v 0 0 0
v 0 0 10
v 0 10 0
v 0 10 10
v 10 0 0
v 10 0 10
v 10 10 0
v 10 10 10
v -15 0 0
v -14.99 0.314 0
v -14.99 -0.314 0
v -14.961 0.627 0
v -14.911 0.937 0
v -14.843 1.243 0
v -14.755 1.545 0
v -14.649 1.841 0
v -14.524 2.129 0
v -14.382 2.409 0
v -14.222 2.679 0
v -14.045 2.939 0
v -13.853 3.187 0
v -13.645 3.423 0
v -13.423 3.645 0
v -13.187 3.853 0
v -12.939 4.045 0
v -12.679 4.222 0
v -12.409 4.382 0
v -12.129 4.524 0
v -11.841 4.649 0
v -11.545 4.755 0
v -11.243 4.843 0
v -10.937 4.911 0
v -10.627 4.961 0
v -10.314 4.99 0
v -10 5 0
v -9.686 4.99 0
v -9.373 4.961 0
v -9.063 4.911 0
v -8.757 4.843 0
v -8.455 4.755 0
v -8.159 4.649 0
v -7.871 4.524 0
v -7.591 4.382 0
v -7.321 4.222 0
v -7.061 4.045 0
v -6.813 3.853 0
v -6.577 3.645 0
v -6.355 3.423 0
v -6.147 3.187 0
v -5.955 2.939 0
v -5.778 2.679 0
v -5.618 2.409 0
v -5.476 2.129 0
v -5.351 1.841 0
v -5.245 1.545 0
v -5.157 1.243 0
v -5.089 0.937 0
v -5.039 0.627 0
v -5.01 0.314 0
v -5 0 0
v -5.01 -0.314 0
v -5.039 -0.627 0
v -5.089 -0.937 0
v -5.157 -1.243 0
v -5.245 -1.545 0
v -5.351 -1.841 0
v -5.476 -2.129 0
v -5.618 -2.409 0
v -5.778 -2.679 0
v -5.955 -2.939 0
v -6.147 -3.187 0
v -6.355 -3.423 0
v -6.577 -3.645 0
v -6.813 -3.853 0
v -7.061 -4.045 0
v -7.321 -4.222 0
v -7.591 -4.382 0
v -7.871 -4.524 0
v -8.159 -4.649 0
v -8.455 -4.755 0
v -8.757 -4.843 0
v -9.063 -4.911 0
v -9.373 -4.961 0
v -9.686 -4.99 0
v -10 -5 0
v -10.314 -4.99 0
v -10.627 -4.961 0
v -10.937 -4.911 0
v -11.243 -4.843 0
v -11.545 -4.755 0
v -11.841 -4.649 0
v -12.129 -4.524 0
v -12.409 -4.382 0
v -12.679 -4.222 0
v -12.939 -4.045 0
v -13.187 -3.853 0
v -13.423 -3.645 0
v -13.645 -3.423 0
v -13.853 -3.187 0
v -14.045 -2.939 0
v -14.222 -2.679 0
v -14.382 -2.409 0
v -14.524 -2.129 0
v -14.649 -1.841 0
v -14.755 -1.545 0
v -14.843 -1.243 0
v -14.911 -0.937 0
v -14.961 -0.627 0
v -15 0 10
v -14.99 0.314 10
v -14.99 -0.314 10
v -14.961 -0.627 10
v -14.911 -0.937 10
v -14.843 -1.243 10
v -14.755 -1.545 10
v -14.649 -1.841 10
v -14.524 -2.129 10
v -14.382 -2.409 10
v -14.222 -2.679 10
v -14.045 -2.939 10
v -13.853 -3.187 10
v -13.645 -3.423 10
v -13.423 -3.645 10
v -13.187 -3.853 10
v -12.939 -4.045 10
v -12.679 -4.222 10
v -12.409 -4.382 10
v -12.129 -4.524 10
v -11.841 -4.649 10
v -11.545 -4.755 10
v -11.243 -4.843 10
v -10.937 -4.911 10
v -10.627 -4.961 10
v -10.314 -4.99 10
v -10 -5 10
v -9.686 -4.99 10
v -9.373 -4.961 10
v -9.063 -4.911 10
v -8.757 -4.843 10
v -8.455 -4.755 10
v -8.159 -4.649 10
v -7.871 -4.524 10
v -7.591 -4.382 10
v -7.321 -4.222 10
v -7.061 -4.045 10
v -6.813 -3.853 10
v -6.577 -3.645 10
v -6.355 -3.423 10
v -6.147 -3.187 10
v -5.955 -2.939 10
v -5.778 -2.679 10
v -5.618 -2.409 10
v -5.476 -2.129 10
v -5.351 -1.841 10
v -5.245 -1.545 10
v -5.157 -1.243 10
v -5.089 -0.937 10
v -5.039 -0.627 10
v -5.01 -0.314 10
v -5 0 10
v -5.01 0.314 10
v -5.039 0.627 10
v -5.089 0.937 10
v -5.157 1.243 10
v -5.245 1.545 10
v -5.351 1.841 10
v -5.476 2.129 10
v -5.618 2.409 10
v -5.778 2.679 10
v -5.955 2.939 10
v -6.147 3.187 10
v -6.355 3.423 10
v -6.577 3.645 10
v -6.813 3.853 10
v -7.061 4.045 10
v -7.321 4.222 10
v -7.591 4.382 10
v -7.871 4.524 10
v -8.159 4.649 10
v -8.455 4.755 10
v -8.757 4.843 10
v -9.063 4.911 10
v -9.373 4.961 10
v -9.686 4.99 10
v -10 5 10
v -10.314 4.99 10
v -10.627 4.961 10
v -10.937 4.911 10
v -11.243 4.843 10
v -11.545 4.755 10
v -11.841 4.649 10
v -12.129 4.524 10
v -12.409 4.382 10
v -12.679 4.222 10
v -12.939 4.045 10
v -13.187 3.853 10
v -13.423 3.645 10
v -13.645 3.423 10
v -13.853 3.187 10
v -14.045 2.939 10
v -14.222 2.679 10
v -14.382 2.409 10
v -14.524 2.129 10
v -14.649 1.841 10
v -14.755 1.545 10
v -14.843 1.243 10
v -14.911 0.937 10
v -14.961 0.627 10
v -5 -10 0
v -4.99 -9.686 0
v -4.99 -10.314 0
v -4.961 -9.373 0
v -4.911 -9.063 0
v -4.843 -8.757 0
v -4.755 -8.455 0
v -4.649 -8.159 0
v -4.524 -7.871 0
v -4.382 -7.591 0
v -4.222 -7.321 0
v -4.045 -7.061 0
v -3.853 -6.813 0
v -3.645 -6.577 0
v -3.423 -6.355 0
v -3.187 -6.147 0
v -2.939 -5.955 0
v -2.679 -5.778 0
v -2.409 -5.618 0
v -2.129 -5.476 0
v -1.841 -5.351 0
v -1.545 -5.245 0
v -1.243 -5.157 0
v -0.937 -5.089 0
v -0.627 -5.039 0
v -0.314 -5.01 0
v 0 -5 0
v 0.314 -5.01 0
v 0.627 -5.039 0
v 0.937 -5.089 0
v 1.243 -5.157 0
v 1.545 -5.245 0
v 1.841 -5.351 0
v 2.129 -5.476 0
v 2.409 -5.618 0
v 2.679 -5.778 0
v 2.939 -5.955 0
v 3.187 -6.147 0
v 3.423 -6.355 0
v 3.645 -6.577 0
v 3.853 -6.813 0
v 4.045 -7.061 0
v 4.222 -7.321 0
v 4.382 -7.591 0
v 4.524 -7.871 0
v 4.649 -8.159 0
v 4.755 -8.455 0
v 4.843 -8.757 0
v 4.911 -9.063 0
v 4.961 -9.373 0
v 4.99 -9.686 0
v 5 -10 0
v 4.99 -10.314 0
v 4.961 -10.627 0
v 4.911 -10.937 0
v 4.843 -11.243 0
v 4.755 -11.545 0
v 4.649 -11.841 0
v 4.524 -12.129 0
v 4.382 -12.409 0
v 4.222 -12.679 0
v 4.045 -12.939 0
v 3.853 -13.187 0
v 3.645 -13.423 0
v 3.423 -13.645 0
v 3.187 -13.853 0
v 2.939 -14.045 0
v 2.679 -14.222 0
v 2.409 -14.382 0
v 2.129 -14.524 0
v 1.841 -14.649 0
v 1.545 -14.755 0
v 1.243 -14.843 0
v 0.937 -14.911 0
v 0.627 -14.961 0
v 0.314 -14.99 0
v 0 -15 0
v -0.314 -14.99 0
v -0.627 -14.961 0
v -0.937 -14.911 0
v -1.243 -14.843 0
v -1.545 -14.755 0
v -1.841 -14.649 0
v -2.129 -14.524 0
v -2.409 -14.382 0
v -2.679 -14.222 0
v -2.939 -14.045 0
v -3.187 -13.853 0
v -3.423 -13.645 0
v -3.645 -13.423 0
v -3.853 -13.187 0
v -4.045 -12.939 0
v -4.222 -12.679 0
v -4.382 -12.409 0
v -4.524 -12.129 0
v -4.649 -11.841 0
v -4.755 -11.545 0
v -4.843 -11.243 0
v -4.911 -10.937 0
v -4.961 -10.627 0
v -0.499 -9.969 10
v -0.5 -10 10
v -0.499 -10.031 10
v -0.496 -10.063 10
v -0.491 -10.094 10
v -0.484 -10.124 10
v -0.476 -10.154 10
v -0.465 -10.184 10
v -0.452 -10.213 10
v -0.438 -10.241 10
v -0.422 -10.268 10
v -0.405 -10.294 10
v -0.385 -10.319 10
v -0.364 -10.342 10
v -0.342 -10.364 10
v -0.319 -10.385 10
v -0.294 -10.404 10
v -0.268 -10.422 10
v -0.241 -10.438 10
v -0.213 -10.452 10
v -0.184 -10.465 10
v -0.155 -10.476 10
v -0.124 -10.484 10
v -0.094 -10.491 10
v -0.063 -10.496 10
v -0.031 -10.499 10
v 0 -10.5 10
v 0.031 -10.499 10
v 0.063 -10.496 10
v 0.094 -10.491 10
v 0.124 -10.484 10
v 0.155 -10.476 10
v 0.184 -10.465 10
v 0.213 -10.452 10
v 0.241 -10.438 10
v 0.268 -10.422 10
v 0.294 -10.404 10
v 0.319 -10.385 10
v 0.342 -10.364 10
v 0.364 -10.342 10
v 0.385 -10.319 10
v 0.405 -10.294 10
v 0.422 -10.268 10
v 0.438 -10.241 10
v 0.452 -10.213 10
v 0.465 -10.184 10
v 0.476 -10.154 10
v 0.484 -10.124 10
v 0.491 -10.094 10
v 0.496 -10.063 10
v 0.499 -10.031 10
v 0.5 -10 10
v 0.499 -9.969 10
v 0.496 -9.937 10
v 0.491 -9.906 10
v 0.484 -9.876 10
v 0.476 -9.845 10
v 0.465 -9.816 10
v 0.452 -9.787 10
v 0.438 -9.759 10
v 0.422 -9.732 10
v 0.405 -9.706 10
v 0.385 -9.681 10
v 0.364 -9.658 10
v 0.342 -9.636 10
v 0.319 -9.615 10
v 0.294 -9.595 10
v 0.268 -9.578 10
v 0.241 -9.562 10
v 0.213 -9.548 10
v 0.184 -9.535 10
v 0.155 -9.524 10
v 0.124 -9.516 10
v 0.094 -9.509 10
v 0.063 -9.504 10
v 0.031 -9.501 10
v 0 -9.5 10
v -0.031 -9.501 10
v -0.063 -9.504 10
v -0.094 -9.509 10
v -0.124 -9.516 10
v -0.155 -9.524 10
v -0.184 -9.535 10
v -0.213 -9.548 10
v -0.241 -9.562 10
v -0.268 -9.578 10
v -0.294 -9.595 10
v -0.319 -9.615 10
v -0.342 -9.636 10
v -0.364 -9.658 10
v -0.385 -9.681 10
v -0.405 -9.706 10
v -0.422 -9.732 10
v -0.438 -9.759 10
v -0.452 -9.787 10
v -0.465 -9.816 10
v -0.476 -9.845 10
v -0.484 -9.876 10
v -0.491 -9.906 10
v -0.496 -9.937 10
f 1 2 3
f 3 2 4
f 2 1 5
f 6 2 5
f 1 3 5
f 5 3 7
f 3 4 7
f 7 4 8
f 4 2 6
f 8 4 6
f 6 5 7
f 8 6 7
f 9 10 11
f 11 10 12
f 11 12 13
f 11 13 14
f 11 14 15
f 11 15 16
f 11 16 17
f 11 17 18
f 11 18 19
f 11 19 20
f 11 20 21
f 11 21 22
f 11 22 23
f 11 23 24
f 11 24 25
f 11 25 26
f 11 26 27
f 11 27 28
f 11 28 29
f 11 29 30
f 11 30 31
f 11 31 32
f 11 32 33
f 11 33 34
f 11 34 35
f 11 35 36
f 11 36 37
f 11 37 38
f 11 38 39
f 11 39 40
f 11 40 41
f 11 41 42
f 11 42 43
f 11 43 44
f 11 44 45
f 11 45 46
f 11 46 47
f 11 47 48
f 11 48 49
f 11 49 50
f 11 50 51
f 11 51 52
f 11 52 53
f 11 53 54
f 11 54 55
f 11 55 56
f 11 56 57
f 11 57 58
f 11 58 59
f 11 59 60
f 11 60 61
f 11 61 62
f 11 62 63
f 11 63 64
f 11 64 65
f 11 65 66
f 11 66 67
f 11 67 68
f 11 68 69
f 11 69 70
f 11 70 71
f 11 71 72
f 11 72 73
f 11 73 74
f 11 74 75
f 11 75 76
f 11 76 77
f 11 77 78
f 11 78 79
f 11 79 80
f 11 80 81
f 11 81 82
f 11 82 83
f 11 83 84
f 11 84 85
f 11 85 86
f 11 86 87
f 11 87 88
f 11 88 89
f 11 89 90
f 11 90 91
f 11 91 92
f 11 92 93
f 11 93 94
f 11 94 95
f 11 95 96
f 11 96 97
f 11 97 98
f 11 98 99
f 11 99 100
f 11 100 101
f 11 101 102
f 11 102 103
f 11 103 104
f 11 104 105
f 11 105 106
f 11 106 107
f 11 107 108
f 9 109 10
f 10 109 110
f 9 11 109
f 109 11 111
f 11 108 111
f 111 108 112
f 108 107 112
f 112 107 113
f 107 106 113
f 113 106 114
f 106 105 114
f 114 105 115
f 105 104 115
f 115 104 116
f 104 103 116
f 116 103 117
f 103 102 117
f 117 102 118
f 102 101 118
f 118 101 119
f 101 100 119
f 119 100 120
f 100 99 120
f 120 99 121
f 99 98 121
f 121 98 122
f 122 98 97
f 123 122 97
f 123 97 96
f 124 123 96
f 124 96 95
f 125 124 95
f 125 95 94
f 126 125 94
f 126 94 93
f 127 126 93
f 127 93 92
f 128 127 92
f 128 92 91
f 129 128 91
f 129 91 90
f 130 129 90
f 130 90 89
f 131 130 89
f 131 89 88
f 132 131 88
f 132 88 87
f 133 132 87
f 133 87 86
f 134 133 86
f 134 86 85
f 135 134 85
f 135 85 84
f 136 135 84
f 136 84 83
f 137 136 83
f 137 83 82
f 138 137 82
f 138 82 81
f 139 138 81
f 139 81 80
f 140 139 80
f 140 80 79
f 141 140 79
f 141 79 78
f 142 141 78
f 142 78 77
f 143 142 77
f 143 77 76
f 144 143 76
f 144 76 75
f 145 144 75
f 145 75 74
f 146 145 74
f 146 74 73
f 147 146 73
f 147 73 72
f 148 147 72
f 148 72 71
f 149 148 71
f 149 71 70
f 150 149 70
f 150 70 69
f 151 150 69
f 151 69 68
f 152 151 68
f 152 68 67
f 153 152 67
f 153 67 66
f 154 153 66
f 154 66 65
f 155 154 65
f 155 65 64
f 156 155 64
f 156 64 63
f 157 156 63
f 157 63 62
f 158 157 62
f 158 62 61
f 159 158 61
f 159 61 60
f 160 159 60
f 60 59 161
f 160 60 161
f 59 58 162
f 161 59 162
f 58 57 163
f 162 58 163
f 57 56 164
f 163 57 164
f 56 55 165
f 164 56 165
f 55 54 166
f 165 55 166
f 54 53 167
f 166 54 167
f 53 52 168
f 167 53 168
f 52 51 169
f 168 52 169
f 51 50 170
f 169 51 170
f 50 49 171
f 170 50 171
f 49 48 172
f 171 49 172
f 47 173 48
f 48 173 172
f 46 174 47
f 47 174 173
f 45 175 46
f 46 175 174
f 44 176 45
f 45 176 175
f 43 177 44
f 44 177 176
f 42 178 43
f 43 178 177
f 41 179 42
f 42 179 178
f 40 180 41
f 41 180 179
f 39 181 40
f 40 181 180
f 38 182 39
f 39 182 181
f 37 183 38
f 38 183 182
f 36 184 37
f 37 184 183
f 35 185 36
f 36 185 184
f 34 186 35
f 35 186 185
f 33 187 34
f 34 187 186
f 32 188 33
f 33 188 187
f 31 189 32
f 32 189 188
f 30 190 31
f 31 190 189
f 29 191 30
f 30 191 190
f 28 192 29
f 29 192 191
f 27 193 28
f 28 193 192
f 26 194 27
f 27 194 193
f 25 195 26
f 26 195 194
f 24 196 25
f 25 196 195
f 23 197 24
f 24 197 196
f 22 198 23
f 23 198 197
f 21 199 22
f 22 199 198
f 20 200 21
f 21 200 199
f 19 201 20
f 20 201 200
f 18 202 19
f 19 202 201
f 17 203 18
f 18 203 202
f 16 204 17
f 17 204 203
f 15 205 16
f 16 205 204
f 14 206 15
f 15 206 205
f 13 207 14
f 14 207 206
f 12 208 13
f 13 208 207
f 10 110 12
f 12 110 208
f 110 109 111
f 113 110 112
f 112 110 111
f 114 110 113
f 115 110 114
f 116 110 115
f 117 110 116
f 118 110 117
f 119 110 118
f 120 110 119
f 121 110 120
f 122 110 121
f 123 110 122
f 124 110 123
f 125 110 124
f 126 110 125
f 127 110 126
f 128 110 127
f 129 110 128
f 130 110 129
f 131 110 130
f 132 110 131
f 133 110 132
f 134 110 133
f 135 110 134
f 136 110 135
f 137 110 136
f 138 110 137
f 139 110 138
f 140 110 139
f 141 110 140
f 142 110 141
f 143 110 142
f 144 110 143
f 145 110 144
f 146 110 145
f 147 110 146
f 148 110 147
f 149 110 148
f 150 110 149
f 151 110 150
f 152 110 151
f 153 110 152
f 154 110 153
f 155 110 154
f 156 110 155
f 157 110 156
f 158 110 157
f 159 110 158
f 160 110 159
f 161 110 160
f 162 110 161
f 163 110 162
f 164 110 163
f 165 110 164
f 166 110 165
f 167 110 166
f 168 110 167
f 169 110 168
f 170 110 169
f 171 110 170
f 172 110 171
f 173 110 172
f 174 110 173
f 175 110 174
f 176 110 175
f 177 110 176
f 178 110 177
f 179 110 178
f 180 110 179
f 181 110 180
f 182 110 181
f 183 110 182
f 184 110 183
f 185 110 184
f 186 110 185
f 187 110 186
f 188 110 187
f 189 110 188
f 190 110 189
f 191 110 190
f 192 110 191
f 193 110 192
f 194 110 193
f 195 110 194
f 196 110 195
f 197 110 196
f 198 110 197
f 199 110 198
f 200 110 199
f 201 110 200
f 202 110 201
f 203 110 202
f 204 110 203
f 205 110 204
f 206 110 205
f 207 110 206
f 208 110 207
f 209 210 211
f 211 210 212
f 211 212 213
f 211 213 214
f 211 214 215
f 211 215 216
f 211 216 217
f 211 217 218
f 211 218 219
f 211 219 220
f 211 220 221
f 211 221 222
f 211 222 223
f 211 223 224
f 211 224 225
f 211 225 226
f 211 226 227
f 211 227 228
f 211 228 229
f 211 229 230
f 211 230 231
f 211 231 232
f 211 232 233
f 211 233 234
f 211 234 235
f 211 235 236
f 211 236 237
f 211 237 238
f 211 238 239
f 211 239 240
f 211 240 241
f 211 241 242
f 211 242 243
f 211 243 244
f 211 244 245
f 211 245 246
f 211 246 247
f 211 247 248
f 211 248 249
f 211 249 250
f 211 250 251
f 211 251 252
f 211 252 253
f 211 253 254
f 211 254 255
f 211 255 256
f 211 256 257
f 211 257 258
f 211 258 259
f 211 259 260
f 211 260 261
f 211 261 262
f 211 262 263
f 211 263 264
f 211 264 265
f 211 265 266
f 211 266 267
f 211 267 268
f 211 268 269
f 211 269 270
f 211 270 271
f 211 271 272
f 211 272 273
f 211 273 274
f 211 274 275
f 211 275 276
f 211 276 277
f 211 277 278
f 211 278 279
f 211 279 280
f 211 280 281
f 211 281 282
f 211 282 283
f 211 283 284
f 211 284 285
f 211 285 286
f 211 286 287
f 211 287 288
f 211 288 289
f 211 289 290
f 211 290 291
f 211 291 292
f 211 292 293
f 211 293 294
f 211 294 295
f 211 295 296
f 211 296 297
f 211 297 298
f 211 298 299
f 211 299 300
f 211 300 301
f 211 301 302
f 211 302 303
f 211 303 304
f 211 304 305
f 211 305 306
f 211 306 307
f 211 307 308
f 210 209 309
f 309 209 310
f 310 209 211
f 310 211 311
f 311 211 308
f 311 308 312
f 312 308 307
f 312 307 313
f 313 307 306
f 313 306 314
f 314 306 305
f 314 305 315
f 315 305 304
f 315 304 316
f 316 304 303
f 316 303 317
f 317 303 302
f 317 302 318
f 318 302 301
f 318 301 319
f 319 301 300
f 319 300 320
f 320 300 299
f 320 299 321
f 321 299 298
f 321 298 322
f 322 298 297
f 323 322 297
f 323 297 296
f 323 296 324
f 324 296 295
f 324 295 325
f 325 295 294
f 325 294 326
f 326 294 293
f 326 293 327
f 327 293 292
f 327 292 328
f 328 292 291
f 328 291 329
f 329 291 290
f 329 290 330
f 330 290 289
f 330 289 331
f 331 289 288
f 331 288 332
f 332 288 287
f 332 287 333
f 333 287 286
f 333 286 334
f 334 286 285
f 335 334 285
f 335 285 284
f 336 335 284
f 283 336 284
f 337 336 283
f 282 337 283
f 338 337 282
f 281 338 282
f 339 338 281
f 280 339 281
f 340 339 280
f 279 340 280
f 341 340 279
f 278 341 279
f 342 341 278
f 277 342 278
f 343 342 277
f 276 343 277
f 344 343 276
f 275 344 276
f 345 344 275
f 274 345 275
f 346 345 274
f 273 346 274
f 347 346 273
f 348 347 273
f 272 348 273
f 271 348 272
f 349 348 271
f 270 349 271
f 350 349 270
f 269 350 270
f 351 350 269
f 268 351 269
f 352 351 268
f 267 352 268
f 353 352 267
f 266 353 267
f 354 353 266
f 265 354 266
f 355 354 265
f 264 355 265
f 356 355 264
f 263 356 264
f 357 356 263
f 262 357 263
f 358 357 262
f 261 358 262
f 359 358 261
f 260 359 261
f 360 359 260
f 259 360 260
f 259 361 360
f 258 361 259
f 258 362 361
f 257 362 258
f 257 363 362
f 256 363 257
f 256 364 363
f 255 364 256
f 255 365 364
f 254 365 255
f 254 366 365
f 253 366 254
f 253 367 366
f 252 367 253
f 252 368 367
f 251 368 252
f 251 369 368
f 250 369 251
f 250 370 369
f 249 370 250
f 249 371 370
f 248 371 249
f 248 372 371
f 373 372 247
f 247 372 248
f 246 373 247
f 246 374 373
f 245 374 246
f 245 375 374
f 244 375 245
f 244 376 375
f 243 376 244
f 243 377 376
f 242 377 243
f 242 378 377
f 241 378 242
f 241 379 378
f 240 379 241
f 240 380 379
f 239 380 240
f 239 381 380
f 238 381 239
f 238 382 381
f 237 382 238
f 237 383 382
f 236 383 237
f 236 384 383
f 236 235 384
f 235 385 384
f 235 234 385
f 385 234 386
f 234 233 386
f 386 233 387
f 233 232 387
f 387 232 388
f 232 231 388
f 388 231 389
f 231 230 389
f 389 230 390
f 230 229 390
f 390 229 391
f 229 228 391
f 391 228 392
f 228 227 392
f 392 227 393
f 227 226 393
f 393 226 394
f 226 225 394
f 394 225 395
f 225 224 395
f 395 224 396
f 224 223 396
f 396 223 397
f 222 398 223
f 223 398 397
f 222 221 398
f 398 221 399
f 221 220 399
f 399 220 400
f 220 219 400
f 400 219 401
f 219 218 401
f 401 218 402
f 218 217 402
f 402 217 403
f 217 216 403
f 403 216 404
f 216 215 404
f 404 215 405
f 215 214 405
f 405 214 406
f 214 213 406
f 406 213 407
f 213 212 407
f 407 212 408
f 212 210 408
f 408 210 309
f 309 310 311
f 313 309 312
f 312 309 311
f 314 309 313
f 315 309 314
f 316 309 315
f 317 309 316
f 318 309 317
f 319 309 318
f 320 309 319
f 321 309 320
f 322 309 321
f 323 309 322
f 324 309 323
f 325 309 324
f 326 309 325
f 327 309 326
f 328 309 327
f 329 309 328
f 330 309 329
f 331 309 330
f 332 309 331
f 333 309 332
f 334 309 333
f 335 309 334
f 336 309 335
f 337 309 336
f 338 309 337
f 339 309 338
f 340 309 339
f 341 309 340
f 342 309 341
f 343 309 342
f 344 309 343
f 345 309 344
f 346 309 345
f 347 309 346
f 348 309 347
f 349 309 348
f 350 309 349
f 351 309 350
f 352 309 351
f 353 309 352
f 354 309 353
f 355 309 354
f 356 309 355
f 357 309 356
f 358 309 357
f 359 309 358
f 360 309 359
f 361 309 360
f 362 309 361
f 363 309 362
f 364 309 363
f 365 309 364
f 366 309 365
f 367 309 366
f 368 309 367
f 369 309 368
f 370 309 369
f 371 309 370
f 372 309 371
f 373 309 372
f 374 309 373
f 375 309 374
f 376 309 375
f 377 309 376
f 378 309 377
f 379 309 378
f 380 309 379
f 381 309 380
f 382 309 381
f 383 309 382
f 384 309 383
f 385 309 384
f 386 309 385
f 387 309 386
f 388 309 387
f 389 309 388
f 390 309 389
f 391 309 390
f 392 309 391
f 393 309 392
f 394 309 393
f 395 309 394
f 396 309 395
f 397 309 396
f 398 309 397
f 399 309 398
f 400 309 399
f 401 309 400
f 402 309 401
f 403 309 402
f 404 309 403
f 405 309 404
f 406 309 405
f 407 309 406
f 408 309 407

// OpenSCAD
cube(10);
translate([-10,0,0]) cylinder(r=5,h=10,$fn=100);
translate([0,-10,0]) cylinder(r1=5, r2=.5, h=10, $fn=100);
